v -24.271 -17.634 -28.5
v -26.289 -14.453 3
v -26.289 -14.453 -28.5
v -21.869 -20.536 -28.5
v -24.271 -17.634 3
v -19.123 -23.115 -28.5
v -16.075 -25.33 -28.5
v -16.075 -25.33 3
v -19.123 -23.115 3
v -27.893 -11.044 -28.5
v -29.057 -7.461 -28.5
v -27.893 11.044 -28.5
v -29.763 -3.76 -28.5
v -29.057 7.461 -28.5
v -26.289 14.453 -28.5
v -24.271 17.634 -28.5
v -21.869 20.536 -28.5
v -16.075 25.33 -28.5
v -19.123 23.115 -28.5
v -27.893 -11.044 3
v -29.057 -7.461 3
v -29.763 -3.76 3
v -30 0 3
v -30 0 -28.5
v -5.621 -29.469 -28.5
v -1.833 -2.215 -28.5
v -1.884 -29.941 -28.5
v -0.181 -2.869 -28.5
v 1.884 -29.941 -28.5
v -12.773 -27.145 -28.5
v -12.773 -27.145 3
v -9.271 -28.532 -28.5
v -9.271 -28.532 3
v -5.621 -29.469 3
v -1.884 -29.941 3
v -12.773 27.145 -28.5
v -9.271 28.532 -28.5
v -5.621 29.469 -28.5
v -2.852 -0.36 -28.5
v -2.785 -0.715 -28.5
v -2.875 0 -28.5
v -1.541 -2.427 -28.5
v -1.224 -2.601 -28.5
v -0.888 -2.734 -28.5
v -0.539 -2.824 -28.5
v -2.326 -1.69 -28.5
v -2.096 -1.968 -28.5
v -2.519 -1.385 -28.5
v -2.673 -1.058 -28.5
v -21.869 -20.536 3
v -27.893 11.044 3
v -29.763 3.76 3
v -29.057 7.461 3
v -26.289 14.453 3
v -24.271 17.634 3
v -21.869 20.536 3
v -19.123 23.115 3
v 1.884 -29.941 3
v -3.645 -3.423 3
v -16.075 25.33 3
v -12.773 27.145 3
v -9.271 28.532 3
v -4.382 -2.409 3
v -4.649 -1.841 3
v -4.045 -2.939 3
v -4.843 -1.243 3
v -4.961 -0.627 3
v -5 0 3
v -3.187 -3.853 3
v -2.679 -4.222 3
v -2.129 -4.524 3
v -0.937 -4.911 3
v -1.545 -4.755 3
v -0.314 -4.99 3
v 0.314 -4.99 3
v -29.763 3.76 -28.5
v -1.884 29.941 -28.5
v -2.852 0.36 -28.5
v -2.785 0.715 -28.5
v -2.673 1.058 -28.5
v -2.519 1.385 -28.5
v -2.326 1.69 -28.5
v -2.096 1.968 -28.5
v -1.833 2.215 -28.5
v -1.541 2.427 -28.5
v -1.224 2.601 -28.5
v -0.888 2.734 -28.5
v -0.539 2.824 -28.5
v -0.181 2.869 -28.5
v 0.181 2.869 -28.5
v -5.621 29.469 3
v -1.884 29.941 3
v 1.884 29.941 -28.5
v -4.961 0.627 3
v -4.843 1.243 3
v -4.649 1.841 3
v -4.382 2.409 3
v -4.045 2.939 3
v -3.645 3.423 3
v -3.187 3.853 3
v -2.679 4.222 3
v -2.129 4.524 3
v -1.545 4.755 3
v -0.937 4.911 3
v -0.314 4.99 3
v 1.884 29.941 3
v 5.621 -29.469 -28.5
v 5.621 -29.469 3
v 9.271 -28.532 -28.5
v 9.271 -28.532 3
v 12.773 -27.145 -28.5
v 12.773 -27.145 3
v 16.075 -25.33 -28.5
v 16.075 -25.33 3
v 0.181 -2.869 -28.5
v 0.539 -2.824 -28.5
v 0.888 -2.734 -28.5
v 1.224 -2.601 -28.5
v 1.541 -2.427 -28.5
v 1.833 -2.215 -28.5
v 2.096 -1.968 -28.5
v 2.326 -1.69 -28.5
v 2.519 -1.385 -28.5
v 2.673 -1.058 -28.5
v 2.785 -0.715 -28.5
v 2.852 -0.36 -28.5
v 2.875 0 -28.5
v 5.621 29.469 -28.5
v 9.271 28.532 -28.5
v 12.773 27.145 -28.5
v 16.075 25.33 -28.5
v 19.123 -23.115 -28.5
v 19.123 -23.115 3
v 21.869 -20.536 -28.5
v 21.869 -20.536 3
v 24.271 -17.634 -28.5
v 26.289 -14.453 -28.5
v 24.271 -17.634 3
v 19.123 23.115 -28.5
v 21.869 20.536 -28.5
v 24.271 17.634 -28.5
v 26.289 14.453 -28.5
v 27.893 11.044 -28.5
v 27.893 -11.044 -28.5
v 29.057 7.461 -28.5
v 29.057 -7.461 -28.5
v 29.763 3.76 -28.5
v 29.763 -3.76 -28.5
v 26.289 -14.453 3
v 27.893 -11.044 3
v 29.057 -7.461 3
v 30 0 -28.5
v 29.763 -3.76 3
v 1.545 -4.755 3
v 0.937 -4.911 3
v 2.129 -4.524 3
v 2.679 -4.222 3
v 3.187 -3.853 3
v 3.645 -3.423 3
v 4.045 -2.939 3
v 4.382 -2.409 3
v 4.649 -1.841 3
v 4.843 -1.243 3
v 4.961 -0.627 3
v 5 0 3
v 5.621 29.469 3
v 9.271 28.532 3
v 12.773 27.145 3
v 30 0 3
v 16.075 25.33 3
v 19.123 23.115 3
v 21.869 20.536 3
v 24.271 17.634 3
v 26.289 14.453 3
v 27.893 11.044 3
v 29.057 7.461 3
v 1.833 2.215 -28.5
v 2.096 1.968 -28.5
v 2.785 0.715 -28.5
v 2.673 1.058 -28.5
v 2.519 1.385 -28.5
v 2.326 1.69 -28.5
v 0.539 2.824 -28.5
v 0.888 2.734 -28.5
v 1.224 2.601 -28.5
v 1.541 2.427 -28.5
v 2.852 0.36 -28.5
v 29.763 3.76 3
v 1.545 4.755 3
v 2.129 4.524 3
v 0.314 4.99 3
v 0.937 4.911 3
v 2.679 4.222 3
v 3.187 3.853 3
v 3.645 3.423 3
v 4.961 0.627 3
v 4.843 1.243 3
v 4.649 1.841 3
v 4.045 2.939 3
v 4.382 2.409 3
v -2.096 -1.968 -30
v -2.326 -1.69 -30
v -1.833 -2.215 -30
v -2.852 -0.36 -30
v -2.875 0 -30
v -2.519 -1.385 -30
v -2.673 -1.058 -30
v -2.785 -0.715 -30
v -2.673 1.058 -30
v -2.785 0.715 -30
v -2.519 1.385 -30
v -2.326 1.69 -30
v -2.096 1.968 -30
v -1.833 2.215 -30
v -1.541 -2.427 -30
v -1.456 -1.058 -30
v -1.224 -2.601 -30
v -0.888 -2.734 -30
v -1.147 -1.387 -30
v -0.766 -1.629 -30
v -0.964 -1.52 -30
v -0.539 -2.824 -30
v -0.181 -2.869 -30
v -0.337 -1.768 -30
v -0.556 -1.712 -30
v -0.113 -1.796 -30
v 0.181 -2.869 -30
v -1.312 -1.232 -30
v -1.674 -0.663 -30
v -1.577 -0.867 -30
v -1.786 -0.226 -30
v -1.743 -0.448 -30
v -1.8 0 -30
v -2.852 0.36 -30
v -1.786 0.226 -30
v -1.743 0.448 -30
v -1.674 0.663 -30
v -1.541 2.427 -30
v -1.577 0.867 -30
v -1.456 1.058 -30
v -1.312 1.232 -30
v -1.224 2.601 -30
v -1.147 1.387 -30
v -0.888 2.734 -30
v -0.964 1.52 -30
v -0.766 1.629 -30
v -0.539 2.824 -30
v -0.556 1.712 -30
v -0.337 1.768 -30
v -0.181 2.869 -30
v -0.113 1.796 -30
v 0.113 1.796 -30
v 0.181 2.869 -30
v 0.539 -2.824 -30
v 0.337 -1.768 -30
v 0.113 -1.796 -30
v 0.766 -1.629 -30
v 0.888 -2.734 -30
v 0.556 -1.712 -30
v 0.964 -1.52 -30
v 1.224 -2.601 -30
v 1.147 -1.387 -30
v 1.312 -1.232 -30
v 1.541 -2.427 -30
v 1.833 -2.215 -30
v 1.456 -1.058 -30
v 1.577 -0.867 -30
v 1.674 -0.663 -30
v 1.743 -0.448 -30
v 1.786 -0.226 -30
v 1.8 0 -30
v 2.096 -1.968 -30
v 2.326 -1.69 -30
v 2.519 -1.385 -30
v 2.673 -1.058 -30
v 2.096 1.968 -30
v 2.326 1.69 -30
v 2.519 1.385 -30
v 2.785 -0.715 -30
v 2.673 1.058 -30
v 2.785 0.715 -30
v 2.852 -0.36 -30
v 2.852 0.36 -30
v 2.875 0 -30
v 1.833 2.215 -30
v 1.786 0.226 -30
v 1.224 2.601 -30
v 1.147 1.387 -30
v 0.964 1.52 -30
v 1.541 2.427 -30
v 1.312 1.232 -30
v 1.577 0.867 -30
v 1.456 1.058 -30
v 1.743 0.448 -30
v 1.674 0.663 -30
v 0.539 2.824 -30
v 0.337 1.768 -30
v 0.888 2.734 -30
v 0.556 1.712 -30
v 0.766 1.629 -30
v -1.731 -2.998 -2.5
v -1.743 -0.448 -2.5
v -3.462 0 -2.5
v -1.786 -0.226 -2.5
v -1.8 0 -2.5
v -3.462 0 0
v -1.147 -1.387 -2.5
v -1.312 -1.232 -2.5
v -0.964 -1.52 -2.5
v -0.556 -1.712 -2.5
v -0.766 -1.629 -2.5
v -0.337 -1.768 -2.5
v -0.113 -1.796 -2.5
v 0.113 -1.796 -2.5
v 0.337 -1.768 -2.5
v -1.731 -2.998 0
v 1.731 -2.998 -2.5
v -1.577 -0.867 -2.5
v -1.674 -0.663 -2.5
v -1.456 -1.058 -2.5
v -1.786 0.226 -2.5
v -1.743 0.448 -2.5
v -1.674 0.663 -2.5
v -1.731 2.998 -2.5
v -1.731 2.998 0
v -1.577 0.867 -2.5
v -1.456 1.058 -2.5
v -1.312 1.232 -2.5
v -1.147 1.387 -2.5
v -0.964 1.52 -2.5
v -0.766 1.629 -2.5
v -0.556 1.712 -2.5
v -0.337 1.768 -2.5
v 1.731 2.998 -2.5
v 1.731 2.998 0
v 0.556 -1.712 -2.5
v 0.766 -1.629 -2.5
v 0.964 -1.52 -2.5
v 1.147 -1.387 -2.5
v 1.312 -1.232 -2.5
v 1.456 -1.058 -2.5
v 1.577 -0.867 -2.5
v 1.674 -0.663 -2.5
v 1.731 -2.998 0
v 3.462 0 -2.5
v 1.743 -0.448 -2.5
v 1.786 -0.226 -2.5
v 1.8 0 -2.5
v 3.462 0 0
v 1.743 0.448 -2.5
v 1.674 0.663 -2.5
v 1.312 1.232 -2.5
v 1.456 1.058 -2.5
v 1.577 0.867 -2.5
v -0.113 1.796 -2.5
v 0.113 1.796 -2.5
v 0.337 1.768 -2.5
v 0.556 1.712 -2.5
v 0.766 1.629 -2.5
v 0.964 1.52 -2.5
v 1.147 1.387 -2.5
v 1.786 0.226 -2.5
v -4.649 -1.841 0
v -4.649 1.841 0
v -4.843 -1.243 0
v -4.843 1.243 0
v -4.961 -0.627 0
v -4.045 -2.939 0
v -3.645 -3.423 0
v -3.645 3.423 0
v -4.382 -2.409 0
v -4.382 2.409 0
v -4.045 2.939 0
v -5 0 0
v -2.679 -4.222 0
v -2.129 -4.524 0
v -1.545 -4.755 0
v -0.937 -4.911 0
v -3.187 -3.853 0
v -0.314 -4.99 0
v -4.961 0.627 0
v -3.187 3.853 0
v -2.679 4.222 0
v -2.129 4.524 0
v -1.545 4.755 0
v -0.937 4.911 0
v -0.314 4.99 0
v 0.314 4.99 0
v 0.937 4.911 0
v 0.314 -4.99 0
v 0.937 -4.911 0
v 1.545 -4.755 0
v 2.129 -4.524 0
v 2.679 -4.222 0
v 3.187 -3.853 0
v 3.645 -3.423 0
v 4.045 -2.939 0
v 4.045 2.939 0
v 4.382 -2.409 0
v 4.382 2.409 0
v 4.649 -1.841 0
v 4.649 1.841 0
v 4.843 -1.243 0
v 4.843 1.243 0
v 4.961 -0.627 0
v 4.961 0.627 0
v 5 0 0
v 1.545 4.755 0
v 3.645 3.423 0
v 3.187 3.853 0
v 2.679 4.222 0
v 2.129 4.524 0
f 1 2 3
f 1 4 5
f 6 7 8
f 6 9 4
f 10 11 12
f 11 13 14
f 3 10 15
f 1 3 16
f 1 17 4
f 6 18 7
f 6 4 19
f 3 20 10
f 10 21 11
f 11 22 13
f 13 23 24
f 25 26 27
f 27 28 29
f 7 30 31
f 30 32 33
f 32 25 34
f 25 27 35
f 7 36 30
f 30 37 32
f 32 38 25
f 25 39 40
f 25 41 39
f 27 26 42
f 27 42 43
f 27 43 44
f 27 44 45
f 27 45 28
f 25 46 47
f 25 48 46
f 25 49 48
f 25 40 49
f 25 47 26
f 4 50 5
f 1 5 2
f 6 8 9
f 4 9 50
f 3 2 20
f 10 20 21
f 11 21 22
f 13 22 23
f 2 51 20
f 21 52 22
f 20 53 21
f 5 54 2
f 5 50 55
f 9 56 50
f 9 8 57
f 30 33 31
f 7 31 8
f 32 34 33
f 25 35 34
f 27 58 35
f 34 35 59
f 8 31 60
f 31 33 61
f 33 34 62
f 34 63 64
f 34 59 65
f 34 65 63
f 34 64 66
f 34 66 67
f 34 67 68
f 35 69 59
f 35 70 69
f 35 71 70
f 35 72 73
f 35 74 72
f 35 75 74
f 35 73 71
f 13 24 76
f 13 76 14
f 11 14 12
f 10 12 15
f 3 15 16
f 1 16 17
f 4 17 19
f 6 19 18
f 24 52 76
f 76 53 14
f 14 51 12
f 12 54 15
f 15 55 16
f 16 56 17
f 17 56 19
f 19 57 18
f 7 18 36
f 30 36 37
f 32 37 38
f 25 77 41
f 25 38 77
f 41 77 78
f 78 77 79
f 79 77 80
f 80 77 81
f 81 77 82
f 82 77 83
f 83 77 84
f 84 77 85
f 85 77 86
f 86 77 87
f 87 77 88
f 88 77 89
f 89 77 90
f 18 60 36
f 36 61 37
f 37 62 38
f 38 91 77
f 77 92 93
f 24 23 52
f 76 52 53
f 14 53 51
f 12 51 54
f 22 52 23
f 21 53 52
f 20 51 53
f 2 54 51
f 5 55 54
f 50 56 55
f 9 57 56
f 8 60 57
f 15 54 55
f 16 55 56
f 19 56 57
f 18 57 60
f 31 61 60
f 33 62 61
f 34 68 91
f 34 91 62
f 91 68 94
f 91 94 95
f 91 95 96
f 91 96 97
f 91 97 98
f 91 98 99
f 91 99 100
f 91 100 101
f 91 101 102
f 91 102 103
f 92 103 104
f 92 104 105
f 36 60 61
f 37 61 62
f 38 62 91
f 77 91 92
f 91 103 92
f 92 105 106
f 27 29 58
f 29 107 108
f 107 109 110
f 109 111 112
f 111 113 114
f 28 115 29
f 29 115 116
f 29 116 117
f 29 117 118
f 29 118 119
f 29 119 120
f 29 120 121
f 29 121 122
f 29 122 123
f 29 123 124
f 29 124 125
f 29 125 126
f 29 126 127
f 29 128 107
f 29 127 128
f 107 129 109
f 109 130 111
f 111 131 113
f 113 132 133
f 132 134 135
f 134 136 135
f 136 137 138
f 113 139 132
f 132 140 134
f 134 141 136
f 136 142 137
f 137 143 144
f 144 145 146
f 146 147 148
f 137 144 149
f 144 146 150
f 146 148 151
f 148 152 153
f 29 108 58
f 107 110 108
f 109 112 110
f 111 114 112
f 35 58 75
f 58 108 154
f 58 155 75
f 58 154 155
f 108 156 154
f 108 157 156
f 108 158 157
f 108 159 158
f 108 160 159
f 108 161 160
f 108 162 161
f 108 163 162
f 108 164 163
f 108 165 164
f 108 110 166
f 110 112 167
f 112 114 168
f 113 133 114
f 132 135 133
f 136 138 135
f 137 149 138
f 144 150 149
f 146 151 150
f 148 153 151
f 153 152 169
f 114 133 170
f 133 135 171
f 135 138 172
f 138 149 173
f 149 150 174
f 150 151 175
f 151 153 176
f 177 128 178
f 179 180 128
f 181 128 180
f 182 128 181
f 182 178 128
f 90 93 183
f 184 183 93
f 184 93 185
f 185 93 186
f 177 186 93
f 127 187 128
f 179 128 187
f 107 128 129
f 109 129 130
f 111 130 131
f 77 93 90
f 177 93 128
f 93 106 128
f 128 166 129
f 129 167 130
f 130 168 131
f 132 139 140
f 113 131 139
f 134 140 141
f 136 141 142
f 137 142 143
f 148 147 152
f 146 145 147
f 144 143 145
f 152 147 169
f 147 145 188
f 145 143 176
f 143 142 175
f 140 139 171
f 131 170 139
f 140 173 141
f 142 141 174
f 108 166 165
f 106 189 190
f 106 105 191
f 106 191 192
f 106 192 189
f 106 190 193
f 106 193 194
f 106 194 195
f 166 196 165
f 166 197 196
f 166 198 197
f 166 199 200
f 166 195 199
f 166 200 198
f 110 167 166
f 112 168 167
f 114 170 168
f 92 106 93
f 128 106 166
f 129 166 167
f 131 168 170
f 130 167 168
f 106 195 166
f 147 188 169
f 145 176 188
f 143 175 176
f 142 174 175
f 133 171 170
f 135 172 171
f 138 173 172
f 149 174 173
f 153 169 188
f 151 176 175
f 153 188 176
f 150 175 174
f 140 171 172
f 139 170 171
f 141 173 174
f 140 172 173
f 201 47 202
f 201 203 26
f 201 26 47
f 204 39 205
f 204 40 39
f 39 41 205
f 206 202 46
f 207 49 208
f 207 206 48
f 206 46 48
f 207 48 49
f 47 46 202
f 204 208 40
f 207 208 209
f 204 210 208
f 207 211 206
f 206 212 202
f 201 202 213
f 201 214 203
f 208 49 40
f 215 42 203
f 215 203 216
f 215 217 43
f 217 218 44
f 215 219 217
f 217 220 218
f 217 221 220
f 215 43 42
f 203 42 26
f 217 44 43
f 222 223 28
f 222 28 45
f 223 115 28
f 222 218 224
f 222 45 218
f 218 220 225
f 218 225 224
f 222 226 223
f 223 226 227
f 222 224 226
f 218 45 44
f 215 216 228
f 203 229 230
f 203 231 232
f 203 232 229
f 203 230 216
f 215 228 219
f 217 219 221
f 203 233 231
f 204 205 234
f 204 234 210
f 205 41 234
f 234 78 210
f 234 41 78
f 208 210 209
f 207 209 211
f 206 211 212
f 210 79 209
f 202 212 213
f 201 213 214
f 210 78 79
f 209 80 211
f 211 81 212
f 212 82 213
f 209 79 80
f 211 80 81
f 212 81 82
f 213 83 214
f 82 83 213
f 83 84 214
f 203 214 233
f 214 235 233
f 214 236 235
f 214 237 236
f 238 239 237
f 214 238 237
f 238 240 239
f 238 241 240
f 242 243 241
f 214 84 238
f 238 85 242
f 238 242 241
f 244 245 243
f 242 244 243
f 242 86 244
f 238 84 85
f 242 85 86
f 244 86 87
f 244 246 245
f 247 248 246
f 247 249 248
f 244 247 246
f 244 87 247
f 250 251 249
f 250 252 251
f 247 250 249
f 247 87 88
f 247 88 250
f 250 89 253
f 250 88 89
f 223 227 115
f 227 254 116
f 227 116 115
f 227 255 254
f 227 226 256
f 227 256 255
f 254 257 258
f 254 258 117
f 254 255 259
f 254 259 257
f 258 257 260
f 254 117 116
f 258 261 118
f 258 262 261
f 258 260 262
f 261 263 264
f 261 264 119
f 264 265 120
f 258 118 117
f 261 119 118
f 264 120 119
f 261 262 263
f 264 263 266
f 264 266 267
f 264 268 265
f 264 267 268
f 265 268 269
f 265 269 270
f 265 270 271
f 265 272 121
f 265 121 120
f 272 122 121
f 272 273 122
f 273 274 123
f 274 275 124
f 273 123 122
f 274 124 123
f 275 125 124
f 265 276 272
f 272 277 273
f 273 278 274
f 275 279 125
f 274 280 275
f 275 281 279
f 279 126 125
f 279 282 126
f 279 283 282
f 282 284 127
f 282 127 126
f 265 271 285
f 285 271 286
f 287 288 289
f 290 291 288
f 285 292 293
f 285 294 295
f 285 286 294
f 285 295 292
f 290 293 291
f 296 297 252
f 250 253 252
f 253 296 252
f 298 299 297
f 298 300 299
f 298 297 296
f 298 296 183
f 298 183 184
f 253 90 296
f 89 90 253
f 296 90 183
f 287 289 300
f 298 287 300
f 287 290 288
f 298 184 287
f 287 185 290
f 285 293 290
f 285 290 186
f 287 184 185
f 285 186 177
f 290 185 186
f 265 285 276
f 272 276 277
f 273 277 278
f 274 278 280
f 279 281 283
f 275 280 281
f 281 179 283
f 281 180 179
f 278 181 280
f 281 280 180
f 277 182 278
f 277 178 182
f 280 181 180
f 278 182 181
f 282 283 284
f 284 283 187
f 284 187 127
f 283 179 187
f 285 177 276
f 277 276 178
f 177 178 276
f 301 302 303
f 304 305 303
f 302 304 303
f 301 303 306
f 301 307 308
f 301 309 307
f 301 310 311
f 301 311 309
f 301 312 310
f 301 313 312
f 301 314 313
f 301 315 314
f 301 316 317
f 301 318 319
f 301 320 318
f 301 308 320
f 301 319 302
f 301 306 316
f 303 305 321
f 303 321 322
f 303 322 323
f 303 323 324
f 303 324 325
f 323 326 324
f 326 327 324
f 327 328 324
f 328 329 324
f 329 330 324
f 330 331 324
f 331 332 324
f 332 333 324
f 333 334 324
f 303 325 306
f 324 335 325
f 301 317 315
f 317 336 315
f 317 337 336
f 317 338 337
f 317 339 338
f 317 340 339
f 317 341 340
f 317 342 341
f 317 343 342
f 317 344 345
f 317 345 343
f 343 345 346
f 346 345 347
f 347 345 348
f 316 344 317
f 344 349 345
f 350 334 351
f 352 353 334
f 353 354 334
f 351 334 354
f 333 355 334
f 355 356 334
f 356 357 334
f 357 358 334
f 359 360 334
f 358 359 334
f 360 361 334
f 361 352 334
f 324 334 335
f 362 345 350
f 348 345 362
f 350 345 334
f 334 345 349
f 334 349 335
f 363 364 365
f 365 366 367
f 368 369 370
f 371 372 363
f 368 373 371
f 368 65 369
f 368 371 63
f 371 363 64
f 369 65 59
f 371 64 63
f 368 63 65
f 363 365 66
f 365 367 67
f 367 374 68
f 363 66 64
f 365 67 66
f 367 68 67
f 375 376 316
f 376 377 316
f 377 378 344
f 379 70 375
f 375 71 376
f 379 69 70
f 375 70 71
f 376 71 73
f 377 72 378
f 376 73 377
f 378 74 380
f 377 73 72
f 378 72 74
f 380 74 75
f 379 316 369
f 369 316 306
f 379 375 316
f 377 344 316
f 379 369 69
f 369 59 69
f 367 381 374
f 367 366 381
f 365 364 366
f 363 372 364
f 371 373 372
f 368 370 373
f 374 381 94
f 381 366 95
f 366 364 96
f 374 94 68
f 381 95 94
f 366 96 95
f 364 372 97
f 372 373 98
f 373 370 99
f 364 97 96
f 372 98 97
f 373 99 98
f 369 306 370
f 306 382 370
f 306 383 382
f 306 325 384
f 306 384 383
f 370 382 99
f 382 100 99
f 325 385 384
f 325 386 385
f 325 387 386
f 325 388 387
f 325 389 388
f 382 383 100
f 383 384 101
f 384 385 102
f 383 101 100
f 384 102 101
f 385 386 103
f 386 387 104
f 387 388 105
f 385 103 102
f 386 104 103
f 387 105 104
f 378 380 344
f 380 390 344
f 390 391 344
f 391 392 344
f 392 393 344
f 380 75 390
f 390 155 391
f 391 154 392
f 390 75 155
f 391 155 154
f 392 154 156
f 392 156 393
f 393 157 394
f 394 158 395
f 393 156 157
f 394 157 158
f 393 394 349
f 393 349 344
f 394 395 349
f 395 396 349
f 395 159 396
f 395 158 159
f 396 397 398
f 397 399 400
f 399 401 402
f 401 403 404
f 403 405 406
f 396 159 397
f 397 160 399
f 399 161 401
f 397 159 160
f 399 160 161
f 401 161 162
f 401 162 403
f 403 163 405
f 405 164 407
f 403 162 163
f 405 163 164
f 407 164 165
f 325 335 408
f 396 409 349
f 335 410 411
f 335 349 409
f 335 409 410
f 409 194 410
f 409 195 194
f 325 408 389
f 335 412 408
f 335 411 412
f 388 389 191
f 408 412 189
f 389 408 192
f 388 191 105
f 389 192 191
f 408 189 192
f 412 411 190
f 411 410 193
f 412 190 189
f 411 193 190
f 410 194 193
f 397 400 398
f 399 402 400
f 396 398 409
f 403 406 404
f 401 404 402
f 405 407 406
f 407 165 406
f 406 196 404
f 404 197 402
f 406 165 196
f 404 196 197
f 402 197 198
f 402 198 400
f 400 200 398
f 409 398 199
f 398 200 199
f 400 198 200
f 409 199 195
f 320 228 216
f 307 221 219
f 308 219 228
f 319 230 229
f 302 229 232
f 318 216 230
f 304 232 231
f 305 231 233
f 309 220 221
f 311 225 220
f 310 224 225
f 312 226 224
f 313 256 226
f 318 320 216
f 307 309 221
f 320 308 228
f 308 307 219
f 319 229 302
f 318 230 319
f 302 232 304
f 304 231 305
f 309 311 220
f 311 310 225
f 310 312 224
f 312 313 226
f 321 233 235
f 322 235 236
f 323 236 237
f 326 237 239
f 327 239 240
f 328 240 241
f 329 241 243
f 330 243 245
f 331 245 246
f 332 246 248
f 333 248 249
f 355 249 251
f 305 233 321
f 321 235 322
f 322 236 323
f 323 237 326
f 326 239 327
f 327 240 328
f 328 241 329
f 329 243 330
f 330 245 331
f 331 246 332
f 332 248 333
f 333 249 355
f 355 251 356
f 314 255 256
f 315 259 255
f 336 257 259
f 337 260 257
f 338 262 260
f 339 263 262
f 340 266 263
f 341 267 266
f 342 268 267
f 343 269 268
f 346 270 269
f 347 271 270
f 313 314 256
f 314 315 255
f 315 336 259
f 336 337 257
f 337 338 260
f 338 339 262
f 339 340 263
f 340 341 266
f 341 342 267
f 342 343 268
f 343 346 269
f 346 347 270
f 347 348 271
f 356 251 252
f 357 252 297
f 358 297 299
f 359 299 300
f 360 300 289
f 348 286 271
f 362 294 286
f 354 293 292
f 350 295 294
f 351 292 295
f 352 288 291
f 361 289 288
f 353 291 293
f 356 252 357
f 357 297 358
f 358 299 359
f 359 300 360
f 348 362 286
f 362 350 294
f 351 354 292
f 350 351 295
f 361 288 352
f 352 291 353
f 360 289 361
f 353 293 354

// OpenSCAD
$fn = 50;


difference() {
	union() {
		translate(v = [0, 0, -28.5000000000]) {
			cylinder(h = 31.5000000000, r = 30.0000000000);
		}
		#translate(v = [0, 0, -30.0000000000]) {
			cylinder(h = 30, r = 2.8750000000);
		}
	}
	union() {
		translate(v = [0, 0, 0]) {
			rotate(a = [0, 0, 0]) {
				difference() {
					union() {
						translate(v = [0, 0, -2.5000000000]) {
							linear_extrude(height = 2.5000000000) {
								polygon(points = [[3.4620000000, 0.0000000000], [1.7310000000, 2.9981799479], [-1.7310000000, 2.9981799479], [-3.4620000000, 0.0000000000], [-1.7310000000, -2.9981799479], [1.7310000000, -2.9981799479]]);
							}
						}
					}
					union();
				}
			}
		}
		#cylinder(h = 3, r = 5.0000000000);
		#translate(v = [0, 0, -100.0000000000]) {
			cylinder(h = 200, r = 1.8000000000);
		}
	}
}
